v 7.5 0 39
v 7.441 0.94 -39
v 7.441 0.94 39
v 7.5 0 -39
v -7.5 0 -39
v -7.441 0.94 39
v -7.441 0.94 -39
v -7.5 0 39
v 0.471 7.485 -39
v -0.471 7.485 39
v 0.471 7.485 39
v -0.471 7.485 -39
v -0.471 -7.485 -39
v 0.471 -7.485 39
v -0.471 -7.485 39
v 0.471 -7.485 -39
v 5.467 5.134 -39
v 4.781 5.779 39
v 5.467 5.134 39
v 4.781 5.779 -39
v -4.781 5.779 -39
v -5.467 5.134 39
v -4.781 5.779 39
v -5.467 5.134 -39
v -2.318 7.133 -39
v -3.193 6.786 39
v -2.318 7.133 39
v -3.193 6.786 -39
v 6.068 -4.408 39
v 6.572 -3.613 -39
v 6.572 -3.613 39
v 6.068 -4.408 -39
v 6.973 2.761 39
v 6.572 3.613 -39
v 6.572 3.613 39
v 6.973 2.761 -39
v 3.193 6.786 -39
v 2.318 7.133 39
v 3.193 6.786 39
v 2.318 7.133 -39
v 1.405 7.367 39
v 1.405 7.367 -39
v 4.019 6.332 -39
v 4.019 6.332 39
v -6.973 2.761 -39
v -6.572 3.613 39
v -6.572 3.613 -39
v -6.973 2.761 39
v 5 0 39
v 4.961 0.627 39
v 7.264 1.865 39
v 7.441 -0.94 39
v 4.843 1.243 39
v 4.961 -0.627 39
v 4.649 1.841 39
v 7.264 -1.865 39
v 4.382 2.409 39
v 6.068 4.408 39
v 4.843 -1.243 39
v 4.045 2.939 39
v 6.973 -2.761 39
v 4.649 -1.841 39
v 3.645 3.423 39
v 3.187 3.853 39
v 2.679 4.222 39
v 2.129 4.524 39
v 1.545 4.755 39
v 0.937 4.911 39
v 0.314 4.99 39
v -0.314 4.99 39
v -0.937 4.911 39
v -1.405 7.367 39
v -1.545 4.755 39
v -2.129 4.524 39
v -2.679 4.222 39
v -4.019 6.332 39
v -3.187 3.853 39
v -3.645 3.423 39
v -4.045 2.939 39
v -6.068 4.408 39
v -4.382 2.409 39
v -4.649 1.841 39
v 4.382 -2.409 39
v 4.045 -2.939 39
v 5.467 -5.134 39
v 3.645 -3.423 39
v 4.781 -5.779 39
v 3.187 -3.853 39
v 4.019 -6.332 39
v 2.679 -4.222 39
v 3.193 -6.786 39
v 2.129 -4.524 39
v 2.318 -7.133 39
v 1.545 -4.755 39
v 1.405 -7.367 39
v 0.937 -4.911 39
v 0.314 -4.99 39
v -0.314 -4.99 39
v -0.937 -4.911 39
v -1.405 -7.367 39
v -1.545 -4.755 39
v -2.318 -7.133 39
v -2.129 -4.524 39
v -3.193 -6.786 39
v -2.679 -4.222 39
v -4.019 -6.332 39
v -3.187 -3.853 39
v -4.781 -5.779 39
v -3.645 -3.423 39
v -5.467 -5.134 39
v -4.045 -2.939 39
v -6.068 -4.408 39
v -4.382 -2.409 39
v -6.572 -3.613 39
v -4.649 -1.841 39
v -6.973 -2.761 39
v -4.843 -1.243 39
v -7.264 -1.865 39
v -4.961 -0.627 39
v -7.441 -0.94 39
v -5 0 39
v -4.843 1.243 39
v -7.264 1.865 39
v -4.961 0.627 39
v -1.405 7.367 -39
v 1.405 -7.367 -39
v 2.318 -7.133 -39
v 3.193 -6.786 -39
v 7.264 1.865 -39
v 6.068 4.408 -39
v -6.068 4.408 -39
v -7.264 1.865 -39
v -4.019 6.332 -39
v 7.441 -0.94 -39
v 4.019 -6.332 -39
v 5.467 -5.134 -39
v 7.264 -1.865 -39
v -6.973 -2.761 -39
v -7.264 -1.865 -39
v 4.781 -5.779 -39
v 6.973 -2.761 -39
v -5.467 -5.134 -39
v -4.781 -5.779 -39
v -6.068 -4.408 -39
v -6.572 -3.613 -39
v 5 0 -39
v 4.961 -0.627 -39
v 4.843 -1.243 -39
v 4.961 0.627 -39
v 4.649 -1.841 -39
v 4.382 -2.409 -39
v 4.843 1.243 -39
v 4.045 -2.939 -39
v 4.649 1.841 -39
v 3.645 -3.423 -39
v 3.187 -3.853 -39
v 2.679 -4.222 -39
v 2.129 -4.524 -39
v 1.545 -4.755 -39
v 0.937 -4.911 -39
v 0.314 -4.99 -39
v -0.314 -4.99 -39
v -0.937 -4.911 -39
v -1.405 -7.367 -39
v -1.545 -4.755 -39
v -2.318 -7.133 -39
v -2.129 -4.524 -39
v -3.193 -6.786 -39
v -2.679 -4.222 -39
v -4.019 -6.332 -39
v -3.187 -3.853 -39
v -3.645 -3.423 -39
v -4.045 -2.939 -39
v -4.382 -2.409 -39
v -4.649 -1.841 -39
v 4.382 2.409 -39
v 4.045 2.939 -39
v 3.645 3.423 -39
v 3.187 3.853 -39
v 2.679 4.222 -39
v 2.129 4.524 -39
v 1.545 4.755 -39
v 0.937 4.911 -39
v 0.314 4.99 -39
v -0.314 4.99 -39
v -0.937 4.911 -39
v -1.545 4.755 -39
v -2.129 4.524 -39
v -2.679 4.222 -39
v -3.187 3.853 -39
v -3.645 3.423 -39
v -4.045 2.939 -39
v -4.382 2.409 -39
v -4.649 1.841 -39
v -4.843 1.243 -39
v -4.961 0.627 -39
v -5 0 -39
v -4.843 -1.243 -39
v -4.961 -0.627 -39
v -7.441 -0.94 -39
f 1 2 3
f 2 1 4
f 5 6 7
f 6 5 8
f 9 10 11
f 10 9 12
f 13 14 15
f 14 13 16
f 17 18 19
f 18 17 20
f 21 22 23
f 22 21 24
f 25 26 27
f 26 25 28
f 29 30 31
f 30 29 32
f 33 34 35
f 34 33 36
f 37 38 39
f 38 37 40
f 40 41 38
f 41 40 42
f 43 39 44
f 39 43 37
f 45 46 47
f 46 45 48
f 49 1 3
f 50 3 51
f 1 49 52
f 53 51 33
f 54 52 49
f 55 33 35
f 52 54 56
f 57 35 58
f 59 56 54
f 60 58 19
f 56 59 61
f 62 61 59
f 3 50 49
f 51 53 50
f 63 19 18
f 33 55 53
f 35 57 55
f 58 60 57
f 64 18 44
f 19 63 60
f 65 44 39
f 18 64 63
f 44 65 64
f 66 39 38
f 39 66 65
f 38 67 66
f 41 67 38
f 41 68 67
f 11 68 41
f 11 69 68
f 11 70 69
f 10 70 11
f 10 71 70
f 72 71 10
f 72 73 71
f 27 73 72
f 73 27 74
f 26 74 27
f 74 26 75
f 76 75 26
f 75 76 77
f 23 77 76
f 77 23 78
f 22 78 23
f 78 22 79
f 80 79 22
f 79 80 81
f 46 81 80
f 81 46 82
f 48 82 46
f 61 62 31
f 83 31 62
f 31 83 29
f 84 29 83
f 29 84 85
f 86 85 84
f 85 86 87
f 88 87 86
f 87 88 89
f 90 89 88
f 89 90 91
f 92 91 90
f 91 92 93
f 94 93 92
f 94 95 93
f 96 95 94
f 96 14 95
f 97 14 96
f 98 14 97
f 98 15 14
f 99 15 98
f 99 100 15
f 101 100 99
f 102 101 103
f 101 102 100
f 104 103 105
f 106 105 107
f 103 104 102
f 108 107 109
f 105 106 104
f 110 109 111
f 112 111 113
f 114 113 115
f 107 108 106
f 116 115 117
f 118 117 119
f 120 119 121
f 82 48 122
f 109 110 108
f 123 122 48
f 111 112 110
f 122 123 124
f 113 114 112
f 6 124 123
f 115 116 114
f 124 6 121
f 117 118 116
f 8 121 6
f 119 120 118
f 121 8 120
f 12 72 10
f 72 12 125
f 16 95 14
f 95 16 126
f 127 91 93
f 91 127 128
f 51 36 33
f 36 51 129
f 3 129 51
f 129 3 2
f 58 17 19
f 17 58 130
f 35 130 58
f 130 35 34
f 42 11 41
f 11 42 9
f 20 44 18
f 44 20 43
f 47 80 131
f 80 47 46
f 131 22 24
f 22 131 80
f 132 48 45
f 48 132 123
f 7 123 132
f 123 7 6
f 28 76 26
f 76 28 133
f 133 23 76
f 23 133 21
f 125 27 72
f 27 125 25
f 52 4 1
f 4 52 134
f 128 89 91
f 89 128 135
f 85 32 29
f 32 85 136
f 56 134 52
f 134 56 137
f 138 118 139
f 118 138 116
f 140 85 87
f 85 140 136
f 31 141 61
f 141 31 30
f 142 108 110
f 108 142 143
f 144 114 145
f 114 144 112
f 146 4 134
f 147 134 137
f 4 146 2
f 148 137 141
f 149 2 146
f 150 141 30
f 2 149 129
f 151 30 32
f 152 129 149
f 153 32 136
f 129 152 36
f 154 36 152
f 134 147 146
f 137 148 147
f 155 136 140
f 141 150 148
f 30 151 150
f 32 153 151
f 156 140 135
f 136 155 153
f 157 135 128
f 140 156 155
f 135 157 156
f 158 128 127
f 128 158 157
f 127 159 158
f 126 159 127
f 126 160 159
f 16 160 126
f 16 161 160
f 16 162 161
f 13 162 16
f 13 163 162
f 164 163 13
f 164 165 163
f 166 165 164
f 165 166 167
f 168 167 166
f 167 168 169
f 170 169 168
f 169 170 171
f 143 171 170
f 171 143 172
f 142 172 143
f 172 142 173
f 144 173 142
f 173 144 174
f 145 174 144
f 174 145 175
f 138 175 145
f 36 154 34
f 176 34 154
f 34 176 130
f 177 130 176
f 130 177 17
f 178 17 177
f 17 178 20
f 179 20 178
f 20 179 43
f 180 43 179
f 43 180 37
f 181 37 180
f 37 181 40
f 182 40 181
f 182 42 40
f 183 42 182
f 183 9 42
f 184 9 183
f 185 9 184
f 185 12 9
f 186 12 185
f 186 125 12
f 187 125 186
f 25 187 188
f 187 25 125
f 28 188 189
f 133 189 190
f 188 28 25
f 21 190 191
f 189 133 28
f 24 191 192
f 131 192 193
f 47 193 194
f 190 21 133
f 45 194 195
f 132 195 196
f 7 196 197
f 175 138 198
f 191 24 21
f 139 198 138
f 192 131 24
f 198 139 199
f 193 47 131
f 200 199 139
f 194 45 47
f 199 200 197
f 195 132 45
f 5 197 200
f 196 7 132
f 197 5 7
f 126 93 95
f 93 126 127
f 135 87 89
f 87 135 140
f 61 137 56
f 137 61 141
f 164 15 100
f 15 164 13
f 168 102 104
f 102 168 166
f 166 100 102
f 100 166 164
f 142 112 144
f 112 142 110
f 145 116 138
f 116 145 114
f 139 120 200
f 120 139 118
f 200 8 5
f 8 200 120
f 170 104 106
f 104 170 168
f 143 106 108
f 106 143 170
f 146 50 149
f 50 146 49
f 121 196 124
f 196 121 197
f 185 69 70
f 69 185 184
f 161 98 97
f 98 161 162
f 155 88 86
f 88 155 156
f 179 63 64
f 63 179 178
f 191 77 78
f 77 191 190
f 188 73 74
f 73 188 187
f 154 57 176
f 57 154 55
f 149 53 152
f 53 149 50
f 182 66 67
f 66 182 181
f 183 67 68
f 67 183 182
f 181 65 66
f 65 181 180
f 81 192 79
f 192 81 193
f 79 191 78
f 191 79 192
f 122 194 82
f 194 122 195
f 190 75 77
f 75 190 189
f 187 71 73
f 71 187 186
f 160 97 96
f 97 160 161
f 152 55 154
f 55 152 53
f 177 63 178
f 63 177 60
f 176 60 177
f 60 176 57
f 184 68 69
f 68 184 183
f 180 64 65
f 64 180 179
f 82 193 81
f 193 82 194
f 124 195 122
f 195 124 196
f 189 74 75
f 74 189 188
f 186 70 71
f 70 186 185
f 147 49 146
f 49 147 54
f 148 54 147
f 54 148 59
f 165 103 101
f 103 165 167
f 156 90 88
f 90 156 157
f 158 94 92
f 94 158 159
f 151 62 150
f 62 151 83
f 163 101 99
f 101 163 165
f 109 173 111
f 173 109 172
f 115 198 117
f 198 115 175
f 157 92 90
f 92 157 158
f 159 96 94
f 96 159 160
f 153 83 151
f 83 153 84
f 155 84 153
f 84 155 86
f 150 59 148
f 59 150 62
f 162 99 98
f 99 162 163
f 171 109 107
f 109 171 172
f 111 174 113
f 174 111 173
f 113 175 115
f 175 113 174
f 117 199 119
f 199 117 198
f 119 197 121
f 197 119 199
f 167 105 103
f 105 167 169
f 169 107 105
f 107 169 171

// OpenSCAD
$fn = 50;


difference() {
	union() {
		translate(v = [0, 0, -39.0000000000]) {
			cylinder(h = 78, r = 7.5000000000);
		}
	}
	union() {
		translate(v = [0, 0, -100.0000000000]) {
			cylinder(h = 200, r = 5);
		}
	}
}
